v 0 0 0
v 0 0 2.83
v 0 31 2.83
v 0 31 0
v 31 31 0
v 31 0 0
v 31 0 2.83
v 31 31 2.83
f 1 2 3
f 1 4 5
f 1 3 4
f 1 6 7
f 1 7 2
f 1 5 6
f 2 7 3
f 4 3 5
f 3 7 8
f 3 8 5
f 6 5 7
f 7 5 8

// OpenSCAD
/* Warning, this is a very basic generator with a lot of approximation 
input data : [BFBGA, 6WC, 31x31x2.83mm, 1408, , A, C04-25078A]
generated by com.zoubworld.electronics.cad.model3d.Basic
Date : Sun Feb 15 10:50:49 CET 2026
*/

//body
color("black")
translate([0,0,0])
cube([31.0,31.0,2.83], center=false);
